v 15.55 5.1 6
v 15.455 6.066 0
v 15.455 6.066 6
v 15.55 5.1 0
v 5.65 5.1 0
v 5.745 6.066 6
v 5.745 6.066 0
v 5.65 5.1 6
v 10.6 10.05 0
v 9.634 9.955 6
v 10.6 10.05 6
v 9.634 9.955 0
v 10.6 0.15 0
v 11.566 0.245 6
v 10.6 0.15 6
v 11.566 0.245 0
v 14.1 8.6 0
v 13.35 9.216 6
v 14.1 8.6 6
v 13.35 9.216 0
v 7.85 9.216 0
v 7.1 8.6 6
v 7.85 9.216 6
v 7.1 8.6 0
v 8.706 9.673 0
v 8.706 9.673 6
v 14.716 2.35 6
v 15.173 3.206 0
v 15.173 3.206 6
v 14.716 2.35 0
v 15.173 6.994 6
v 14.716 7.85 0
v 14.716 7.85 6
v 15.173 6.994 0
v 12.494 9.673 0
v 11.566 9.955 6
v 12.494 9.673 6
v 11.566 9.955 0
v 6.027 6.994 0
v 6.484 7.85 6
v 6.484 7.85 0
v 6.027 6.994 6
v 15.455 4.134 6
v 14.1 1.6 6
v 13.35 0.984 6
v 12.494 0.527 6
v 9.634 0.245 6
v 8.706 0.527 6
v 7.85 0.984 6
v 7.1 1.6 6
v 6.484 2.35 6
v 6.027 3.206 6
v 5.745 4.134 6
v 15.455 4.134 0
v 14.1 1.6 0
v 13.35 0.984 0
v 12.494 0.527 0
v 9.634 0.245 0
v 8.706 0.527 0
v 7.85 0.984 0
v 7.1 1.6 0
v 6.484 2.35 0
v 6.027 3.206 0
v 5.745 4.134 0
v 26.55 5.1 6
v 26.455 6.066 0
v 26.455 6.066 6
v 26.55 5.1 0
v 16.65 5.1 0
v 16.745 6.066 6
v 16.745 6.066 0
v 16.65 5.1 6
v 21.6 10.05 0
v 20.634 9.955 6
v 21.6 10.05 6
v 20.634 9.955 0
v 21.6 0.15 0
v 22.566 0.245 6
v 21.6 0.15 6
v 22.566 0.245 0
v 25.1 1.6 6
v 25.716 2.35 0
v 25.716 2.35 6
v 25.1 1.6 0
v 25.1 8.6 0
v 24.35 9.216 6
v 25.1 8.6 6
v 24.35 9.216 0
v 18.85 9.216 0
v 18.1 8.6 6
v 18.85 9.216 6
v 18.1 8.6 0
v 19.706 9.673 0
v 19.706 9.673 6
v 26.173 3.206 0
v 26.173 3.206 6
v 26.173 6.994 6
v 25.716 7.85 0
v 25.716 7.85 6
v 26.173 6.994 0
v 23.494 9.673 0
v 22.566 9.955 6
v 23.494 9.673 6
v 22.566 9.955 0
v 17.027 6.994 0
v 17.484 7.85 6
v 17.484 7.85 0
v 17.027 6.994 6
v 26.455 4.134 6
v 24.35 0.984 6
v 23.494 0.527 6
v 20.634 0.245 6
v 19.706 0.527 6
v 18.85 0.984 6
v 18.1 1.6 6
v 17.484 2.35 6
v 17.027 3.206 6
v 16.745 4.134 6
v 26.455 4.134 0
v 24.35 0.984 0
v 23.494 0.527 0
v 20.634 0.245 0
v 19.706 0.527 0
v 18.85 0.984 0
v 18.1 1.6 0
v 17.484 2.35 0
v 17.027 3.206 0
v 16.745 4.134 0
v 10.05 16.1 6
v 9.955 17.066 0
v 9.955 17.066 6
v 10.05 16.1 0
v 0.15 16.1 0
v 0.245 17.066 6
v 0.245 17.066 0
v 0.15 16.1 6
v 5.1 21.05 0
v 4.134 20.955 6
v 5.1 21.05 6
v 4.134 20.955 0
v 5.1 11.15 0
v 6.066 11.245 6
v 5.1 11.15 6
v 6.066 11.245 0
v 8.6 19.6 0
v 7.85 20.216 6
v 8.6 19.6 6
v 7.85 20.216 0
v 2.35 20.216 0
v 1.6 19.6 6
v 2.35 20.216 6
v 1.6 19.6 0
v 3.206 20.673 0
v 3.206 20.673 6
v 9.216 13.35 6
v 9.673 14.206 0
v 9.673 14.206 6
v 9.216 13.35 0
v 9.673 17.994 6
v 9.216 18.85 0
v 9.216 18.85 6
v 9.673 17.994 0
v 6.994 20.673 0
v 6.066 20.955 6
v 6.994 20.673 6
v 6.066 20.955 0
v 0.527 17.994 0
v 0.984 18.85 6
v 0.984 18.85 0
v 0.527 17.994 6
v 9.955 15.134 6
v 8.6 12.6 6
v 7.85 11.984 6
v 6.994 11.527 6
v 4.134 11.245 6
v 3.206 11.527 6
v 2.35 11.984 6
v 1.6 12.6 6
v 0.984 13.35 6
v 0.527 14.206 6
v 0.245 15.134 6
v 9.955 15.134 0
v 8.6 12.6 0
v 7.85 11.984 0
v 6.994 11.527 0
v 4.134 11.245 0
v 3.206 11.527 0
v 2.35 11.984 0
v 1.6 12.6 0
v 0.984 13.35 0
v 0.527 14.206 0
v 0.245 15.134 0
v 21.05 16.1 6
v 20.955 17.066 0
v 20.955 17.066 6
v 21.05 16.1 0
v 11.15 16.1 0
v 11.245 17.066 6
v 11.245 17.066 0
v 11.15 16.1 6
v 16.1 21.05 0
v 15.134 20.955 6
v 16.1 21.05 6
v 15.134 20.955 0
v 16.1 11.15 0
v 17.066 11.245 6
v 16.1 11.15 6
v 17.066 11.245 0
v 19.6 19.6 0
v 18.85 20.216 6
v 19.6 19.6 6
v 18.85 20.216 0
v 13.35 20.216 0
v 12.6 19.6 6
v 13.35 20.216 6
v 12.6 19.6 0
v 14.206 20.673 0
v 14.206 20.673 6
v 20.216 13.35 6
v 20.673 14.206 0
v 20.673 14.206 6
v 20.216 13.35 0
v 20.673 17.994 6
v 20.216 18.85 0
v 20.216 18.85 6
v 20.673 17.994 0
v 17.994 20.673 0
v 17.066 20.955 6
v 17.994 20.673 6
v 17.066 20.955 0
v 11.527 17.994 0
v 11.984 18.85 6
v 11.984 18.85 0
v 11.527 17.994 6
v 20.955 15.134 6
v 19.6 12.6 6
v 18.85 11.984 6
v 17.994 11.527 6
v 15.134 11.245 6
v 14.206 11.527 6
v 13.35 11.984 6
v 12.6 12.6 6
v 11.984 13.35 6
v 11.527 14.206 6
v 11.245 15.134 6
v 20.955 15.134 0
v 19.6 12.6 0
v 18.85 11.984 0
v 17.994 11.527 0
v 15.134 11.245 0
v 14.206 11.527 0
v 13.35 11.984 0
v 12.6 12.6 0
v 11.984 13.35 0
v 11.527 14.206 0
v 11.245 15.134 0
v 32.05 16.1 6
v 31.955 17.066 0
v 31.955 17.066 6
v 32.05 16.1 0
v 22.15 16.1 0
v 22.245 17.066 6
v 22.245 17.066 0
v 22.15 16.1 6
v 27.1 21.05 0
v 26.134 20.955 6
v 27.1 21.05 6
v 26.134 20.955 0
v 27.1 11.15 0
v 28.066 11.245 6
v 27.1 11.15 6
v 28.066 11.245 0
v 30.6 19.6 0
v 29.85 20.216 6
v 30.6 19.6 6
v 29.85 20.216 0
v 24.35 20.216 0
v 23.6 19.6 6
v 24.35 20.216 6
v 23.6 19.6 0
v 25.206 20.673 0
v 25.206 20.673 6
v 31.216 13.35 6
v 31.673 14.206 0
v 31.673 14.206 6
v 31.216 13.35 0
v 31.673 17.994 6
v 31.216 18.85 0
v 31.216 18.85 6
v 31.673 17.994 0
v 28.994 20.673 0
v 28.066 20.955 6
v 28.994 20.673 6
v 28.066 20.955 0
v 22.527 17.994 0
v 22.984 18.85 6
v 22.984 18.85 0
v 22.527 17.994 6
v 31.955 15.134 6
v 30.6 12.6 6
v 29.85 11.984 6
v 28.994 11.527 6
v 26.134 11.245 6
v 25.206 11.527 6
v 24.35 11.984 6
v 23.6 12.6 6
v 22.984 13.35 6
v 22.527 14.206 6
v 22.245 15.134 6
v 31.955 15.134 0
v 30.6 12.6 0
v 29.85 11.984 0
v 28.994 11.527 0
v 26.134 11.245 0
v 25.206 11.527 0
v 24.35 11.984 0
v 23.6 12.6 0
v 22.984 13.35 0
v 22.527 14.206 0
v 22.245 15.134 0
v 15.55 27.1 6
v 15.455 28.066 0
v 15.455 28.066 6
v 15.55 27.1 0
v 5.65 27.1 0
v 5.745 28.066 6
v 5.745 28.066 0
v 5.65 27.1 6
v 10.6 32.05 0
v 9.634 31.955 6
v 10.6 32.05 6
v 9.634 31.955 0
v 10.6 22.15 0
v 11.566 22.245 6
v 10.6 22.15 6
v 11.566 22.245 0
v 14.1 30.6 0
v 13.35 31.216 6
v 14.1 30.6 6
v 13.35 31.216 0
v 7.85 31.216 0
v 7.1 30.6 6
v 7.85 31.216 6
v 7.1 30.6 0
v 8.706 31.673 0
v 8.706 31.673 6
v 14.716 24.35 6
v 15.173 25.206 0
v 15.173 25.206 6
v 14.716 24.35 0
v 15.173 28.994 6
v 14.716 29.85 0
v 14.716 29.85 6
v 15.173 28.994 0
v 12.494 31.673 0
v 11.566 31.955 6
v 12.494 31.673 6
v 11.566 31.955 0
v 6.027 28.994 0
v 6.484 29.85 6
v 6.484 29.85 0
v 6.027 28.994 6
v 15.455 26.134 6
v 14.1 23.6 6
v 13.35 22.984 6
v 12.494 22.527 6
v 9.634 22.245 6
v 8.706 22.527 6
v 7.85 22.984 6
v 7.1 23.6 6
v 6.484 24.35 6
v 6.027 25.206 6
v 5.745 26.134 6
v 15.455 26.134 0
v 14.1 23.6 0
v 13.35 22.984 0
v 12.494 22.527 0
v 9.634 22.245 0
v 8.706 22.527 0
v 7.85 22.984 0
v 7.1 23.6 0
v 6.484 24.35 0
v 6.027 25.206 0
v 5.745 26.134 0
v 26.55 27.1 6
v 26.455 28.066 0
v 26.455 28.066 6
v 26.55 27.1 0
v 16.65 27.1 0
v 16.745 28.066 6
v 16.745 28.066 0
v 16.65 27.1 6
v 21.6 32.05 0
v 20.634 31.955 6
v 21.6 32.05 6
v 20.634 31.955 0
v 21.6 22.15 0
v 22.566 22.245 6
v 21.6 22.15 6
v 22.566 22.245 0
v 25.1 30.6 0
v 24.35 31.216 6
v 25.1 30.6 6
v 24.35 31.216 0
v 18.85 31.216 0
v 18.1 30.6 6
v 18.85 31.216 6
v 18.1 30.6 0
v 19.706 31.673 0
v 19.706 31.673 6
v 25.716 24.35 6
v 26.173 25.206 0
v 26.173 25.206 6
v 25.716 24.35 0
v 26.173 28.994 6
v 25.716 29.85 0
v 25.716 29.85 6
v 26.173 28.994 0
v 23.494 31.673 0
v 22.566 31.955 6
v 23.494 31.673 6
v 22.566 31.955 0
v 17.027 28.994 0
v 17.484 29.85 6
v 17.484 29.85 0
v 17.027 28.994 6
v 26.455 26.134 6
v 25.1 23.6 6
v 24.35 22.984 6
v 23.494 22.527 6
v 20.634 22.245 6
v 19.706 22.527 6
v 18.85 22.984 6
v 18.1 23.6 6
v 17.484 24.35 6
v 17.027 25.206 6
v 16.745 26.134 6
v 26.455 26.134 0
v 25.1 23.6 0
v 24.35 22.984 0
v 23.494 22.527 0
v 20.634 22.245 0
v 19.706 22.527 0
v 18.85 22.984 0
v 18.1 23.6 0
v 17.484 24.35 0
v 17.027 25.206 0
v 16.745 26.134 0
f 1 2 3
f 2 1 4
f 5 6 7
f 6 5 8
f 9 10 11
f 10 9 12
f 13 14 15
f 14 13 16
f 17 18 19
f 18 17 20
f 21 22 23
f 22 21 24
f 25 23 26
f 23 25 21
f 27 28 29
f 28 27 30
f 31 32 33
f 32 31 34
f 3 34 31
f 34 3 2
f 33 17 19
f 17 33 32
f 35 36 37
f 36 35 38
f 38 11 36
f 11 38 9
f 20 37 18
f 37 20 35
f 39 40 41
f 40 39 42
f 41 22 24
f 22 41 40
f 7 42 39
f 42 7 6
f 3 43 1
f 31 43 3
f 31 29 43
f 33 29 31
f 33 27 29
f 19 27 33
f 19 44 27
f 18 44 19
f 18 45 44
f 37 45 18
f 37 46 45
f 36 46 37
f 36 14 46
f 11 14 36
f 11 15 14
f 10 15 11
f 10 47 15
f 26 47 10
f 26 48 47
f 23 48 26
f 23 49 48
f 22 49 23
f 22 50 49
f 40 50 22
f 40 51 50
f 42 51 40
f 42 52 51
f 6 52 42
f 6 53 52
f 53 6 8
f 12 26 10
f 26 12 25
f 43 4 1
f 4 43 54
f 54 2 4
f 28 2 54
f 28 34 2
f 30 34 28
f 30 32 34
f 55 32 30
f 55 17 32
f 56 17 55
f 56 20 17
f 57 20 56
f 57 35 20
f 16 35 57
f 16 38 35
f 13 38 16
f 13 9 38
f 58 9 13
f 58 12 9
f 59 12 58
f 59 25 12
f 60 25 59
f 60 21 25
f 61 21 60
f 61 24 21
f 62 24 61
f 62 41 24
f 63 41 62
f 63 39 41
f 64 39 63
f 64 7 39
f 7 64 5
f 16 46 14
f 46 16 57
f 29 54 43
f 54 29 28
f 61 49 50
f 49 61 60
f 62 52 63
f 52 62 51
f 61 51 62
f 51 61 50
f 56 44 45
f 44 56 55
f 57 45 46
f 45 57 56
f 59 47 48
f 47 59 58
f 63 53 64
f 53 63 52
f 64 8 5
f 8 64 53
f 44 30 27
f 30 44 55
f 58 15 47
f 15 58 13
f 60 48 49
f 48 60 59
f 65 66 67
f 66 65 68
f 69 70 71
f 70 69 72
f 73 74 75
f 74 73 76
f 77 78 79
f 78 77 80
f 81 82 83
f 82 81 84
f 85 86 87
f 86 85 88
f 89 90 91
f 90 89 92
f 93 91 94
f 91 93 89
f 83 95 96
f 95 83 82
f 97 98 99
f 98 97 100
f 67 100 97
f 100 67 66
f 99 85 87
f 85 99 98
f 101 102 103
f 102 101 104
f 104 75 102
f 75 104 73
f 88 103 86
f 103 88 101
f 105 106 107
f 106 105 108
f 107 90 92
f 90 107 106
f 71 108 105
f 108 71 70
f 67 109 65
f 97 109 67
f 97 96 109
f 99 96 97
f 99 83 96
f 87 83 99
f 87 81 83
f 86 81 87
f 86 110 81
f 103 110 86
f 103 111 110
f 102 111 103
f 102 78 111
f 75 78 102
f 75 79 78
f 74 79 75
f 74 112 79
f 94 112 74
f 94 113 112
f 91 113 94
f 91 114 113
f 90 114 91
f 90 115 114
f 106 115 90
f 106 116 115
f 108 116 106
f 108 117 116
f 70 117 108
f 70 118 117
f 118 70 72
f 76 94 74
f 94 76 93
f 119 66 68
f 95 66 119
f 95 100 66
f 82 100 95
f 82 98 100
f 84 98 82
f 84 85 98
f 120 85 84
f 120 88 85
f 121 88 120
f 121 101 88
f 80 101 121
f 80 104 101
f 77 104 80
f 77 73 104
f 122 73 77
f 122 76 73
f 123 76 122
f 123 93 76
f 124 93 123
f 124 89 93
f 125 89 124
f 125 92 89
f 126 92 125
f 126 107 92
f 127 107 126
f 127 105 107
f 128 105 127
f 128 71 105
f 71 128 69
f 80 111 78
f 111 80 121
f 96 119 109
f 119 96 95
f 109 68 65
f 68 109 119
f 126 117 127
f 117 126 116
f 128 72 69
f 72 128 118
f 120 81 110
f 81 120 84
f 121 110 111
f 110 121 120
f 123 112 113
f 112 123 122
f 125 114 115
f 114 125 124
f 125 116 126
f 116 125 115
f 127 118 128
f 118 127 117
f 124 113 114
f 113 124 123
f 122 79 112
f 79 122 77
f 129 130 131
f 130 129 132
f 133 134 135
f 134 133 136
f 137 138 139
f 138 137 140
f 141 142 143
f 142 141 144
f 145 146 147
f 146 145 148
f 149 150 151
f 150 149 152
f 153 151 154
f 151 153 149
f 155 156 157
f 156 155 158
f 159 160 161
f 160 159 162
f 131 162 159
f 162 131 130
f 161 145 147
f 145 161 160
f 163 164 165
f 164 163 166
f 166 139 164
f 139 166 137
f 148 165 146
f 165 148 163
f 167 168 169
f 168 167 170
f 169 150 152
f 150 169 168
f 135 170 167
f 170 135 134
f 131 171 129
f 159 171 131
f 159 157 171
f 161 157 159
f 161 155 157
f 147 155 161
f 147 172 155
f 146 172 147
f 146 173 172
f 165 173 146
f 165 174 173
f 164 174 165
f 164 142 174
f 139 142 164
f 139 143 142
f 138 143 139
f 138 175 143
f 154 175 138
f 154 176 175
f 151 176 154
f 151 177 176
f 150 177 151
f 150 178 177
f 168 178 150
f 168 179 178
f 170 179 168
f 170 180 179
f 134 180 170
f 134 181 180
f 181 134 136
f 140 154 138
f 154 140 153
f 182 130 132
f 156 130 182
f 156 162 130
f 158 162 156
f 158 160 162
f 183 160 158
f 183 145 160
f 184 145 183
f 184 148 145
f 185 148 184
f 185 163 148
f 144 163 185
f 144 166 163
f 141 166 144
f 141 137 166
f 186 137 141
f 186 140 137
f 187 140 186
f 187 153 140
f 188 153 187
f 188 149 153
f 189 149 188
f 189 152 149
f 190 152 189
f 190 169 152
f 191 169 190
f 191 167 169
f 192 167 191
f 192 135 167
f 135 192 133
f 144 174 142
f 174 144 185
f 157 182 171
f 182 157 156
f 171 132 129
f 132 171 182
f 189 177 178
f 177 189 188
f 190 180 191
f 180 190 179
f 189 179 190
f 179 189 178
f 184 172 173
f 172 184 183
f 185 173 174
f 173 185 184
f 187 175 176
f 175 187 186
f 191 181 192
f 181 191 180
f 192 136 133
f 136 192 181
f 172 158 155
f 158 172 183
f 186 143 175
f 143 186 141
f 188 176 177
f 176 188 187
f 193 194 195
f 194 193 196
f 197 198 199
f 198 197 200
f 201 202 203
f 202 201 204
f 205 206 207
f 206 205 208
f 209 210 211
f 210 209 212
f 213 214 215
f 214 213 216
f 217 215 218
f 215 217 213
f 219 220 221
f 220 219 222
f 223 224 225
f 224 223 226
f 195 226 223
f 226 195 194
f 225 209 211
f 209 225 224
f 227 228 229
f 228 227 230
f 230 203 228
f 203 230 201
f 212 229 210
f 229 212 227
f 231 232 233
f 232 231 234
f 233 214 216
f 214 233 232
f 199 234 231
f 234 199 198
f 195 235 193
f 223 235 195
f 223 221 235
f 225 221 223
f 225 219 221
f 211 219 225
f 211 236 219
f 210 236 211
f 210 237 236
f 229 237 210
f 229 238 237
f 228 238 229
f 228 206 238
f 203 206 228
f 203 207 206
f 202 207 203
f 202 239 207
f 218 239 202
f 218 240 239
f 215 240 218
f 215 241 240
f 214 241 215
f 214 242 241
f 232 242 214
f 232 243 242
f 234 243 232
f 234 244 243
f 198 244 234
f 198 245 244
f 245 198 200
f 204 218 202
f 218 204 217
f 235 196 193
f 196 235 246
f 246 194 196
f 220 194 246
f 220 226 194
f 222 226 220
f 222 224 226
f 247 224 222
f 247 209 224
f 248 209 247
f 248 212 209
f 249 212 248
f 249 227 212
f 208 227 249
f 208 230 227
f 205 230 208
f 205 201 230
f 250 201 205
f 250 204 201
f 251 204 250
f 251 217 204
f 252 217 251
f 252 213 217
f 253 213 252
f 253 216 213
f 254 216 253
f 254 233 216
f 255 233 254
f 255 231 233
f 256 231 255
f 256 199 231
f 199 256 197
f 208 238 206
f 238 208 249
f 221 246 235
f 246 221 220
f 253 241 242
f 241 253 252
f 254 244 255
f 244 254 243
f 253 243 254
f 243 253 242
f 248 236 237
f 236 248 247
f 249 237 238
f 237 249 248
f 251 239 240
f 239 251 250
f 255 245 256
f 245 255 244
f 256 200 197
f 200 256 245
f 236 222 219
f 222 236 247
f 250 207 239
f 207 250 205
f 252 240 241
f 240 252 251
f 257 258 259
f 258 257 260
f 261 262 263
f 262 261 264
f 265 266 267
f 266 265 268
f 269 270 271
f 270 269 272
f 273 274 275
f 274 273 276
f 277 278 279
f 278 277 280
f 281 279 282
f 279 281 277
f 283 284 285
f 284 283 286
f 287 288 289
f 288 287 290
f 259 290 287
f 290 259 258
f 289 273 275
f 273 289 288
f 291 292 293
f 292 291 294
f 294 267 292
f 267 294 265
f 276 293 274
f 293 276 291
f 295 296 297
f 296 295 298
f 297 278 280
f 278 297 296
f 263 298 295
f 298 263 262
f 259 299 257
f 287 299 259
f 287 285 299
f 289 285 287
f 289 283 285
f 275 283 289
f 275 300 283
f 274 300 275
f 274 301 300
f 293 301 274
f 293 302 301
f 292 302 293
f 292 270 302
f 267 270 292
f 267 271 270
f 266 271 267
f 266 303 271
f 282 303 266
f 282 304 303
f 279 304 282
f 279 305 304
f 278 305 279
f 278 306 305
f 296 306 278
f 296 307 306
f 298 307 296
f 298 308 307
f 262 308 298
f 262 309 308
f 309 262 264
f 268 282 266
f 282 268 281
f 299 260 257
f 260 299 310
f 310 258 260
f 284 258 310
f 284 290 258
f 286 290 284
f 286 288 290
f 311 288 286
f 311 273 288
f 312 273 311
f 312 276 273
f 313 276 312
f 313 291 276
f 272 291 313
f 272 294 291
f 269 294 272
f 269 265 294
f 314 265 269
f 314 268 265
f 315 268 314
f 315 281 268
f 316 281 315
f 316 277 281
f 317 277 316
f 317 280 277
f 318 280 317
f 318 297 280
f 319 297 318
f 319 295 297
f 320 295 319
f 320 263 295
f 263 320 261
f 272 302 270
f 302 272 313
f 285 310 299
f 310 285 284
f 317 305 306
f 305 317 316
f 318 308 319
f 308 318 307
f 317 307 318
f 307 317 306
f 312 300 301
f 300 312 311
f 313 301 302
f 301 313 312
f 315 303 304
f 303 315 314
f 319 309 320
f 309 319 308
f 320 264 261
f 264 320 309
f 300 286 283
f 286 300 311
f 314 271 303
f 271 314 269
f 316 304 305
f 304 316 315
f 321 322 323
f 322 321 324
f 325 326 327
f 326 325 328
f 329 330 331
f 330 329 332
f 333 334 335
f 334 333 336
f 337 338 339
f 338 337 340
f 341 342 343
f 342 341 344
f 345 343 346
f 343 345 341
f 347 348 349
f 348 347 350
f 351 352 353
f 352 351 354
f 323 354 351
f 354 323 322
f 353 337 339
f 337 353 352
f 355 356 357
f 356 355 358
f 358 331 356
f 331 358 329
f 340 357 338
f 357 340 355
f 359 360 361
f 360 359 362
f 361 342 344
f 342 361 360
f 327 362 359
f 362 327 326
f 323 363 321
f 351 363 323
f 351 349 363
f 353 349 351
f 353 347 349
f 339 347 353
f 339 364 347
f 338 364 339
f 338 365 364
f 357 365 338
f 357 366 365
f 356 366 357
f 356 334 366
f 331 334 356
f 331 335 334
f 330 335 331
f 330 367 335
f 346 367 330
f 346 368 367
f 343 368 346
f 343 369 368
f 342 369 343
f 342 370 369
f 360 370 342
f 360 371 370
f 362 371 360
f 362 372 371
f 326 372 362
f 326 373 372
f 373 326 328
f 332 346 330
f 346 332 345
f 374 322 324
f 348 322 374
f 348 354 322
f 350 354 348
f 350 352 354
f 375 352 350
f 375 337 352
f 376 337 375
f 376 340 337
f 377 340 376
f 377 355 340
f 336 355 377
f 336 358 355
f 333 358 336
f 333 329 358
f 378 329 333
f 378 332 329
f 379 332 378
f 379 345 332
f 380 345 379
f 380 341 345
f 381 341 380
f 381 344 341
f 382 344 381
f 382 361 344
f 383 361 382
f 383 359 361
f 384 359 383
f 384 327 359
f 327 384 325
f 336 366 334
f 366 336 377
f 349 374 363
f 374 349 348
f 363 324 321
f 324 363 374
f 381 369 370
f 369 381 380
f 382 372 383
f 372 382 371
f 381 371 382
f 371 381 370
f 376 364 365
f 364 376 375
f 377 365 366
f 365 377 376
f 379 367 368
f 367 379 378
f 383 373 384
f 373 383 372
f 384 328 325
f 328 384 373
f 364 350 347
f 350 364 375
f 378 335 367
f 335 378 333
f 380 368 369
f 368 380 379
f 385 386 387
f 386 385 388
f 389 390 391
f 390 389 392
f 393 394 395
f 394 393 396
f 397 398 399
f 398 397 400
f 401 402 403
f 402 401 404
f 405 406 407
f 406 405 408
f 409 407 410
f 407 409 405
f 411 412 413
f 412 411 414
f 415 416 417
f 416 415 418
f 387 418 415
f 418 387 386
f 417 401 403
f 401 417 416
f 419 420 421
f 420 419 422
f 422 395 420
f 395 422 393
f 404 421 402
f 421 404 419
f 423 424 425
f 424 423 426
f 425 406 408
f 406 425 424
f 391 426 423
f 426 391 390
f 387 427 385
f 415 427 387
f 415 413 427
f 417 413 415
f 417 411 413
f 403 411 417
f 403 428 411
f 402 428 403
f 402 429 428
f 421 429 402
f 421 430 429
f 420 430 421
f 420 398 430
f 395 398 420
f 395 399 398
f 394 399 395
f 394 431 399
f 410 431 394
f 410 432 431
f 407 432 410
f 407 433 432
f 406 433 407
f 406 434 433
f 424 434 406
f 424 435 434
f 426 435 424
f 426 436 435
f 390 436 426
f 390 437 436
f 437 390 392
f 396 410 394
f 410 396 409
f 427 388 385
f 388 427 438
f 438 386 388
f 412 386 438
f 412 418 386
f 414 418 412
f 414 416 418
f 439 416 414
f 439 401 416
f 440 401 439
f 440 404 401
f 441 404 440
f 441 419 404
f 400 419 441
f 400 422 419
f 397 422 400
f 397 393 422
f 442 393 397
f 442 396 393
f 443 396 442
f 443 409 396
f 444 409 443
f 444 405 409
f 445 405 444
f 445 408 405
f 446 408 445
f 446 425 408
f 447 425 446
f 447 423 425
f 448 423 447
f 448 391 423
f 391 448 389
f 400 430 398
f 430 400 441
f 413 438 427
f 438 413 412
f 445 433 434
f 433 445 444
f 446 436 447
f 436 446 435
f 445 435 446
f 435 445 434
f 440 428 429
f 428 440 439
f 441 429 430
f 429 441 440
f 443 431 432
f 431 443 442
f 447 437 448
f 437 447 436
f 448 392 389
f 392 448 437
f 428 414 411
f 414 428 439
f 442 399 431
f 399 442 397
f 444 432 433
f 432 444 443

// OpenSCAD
// file: lib/polyomino.scad
/*
 * Polyominoes: Generate polyominoes and a board in which to tile them.
 */

// Cube size
$size = 10;
// Tolerance (shrink cubes by this much on horizontal sides)
$tolerance = 0.1;
// Gaps between cubes
$gap = 1;
// Locking grid height / connector depth from surface
$grid_height = 2;
// Holes
$hole = true;
$rim_thickness = 0.45*9;
// Show A-B-C/1-2-3 labels on board
$letters = true;
$font = "Comfortaa:style=Bold";

module shape(coords) {
     // Size of connection between cubes
     connector_hsize = $size - 2*$grid_height;
     connector_vsize = $size - 2.2*$grid_height;

     // Actual size of cube
     w = $size-2*$tolerance;

     union() {
          for (i = [0:len(coords)-1]) {
               c = coords[i];

               difference() {
                    translate([($size+$gap)*c[0], ($size+$gap)*c[1], 0])
                         union() {
                         // Main cube
                         translate([$tolerance, $tolerance, 0])
                              cube([w,w,$size]);

                         if (i > 0) {
                              prev = coords[i-1];

                              dx = c[0] - prev[0];
                              dy = c[1] - prev[1];

                              // Connector to previous cube
                              if (dx != 0) {
                                   connector_size = $rim_thickness + $gap;

                                   translate([(1-dx)*($size+$gap)/2-(connector_size/2+$gap/2),$grid_height,1.1*$grid_height])
                                        cube([connector_size,connector_hsize,connector_vsize]);
                              } else {
                                   connector_size = $rim_thickness + $gap;

                                   translate([$grid_height, (1-dy)*($size+$gap)/2-(connector_size/2+$gap/2),1.1*$grid_height])
                                        cube([connector_hsize,connector_size,connector_vsize]);
                              }

                         }
                    }

                    // Cylindrical hole
                    if ($hole) {
                         translate([$tolerance+($size+$gap)*c[0], $tolerance+($size+$gap)*c[1], 0])
                              union() {
                              translate([w/2,w/2,$size/2+0.8])
                                   cylinder(d=w-$rim_thickness, h=$size/2, $fn=32);
                              translate([w/2,w/2,-0.8])
                                   cylinder(d=w-$rim_thickness, h=$size/2, $fn=32);
                         }
                    }
               }

          }
     }
}

module blocker() {
     translate([$size/2+$tolerance, $size/2+$tolerance, 0])
     cylinder(d=$size-$tolerance, h=0.6*$size);
}

module boardText(t)
{
     linear_extrude(height = 0.2) {text(t, size = ($size-1)/2, font = $font, halign = "center", valign = "center", $fn = 16);}
}

module grid(xcells, ycells) {
     translate([-($size+$gap)*xcells/2, -($size+$gap)*ycells/2, 0])
     union() {
          for (x = [0:xcells]) {
               translate([($size+$gap)*x, (($size+$gap)*ycells)/2, (0.8+$grid_height)/2])
                    cube([0.8, ($size+$gap)*ycells+0.8, 0.8+$grid_height], center=true);
          }

          for (y = [0:ycells]) {
               translate([(($size+$gap)*xcells)/2, ($size+$gap)*y, (0.8+$grid_height)/2])
                    cube([($size+$gap)*xcells+0.8, 0.8, 0.8+$grid_height], center=true);
          }
     }
}

module board(xcells, ycells) {
     depth = 0.81;

     difference() {
          union () {
               color("white")
               difference() {
                    // board base
                    translate([0, 0, 0.5])
                         cube([($size+$gap)*(xcells+3),($size+$gap)*(ycells+3),1], center=true);

                    // grid hollow
                    translate([0, 0, 0.9])
                         cube([($size+$gap)*xcells,($size+$gap)*ycells,0.2], center=true);
               }

               color("#333")
                    grid(xcells, ycells);
          }

          if ($letters) {
               union() {
                    letters = ["", "A", "B", "C", "D", "E", "F", "G", "H"];
                    for (x = [1:xcells]) {
                         translate([-($size+$gap)*xcells/2-3*$size/4, ($size+$gap)*ycells/2+$size/2-($size+$gap)*x, depth]) boardText(str(letters[x]));
                    }
                    for (y = [1:ycells]) {
                         translate([-($size+$gap)*xcells/2-$size/2+($size+$gap)*y, ($size+$gap)*ycells/2+3*$size/4, depth]) boardText(str(y));
                    }
               }
          }
     }

     color("#333")
          minkowski() {
          union() {
               for (r = [0:90:270]) {
                    rotate(a=r)
                         translate([-($size+$gap)*(xcells+3)/2, 0, $grid_height])
                         cube([1, ($size+$gap)*(ycells+3), 2*$grid_height], center=true);
               }
          }
          cylinder(r=1, h=1, $fn=16);
     }
}
// main file
include <./lib/polyomino.scad>

$size = 10;
off = $size + 1;

$fn = 32;

color("gold")
union() {
     translate([0.5*off, 0, 0]) blocker();
     translate([1.5*off, 0, 0]) blocker();

     translate([0, off, 0]) blocker();
     translate([off, off, 0]) blocker();
     translate([2*off, off, 0]) blocker();

     translate([0.5*off, 2*off, 0]) blocker();
     translate([1.5*off, 2*off, 0]) blocker();
}
